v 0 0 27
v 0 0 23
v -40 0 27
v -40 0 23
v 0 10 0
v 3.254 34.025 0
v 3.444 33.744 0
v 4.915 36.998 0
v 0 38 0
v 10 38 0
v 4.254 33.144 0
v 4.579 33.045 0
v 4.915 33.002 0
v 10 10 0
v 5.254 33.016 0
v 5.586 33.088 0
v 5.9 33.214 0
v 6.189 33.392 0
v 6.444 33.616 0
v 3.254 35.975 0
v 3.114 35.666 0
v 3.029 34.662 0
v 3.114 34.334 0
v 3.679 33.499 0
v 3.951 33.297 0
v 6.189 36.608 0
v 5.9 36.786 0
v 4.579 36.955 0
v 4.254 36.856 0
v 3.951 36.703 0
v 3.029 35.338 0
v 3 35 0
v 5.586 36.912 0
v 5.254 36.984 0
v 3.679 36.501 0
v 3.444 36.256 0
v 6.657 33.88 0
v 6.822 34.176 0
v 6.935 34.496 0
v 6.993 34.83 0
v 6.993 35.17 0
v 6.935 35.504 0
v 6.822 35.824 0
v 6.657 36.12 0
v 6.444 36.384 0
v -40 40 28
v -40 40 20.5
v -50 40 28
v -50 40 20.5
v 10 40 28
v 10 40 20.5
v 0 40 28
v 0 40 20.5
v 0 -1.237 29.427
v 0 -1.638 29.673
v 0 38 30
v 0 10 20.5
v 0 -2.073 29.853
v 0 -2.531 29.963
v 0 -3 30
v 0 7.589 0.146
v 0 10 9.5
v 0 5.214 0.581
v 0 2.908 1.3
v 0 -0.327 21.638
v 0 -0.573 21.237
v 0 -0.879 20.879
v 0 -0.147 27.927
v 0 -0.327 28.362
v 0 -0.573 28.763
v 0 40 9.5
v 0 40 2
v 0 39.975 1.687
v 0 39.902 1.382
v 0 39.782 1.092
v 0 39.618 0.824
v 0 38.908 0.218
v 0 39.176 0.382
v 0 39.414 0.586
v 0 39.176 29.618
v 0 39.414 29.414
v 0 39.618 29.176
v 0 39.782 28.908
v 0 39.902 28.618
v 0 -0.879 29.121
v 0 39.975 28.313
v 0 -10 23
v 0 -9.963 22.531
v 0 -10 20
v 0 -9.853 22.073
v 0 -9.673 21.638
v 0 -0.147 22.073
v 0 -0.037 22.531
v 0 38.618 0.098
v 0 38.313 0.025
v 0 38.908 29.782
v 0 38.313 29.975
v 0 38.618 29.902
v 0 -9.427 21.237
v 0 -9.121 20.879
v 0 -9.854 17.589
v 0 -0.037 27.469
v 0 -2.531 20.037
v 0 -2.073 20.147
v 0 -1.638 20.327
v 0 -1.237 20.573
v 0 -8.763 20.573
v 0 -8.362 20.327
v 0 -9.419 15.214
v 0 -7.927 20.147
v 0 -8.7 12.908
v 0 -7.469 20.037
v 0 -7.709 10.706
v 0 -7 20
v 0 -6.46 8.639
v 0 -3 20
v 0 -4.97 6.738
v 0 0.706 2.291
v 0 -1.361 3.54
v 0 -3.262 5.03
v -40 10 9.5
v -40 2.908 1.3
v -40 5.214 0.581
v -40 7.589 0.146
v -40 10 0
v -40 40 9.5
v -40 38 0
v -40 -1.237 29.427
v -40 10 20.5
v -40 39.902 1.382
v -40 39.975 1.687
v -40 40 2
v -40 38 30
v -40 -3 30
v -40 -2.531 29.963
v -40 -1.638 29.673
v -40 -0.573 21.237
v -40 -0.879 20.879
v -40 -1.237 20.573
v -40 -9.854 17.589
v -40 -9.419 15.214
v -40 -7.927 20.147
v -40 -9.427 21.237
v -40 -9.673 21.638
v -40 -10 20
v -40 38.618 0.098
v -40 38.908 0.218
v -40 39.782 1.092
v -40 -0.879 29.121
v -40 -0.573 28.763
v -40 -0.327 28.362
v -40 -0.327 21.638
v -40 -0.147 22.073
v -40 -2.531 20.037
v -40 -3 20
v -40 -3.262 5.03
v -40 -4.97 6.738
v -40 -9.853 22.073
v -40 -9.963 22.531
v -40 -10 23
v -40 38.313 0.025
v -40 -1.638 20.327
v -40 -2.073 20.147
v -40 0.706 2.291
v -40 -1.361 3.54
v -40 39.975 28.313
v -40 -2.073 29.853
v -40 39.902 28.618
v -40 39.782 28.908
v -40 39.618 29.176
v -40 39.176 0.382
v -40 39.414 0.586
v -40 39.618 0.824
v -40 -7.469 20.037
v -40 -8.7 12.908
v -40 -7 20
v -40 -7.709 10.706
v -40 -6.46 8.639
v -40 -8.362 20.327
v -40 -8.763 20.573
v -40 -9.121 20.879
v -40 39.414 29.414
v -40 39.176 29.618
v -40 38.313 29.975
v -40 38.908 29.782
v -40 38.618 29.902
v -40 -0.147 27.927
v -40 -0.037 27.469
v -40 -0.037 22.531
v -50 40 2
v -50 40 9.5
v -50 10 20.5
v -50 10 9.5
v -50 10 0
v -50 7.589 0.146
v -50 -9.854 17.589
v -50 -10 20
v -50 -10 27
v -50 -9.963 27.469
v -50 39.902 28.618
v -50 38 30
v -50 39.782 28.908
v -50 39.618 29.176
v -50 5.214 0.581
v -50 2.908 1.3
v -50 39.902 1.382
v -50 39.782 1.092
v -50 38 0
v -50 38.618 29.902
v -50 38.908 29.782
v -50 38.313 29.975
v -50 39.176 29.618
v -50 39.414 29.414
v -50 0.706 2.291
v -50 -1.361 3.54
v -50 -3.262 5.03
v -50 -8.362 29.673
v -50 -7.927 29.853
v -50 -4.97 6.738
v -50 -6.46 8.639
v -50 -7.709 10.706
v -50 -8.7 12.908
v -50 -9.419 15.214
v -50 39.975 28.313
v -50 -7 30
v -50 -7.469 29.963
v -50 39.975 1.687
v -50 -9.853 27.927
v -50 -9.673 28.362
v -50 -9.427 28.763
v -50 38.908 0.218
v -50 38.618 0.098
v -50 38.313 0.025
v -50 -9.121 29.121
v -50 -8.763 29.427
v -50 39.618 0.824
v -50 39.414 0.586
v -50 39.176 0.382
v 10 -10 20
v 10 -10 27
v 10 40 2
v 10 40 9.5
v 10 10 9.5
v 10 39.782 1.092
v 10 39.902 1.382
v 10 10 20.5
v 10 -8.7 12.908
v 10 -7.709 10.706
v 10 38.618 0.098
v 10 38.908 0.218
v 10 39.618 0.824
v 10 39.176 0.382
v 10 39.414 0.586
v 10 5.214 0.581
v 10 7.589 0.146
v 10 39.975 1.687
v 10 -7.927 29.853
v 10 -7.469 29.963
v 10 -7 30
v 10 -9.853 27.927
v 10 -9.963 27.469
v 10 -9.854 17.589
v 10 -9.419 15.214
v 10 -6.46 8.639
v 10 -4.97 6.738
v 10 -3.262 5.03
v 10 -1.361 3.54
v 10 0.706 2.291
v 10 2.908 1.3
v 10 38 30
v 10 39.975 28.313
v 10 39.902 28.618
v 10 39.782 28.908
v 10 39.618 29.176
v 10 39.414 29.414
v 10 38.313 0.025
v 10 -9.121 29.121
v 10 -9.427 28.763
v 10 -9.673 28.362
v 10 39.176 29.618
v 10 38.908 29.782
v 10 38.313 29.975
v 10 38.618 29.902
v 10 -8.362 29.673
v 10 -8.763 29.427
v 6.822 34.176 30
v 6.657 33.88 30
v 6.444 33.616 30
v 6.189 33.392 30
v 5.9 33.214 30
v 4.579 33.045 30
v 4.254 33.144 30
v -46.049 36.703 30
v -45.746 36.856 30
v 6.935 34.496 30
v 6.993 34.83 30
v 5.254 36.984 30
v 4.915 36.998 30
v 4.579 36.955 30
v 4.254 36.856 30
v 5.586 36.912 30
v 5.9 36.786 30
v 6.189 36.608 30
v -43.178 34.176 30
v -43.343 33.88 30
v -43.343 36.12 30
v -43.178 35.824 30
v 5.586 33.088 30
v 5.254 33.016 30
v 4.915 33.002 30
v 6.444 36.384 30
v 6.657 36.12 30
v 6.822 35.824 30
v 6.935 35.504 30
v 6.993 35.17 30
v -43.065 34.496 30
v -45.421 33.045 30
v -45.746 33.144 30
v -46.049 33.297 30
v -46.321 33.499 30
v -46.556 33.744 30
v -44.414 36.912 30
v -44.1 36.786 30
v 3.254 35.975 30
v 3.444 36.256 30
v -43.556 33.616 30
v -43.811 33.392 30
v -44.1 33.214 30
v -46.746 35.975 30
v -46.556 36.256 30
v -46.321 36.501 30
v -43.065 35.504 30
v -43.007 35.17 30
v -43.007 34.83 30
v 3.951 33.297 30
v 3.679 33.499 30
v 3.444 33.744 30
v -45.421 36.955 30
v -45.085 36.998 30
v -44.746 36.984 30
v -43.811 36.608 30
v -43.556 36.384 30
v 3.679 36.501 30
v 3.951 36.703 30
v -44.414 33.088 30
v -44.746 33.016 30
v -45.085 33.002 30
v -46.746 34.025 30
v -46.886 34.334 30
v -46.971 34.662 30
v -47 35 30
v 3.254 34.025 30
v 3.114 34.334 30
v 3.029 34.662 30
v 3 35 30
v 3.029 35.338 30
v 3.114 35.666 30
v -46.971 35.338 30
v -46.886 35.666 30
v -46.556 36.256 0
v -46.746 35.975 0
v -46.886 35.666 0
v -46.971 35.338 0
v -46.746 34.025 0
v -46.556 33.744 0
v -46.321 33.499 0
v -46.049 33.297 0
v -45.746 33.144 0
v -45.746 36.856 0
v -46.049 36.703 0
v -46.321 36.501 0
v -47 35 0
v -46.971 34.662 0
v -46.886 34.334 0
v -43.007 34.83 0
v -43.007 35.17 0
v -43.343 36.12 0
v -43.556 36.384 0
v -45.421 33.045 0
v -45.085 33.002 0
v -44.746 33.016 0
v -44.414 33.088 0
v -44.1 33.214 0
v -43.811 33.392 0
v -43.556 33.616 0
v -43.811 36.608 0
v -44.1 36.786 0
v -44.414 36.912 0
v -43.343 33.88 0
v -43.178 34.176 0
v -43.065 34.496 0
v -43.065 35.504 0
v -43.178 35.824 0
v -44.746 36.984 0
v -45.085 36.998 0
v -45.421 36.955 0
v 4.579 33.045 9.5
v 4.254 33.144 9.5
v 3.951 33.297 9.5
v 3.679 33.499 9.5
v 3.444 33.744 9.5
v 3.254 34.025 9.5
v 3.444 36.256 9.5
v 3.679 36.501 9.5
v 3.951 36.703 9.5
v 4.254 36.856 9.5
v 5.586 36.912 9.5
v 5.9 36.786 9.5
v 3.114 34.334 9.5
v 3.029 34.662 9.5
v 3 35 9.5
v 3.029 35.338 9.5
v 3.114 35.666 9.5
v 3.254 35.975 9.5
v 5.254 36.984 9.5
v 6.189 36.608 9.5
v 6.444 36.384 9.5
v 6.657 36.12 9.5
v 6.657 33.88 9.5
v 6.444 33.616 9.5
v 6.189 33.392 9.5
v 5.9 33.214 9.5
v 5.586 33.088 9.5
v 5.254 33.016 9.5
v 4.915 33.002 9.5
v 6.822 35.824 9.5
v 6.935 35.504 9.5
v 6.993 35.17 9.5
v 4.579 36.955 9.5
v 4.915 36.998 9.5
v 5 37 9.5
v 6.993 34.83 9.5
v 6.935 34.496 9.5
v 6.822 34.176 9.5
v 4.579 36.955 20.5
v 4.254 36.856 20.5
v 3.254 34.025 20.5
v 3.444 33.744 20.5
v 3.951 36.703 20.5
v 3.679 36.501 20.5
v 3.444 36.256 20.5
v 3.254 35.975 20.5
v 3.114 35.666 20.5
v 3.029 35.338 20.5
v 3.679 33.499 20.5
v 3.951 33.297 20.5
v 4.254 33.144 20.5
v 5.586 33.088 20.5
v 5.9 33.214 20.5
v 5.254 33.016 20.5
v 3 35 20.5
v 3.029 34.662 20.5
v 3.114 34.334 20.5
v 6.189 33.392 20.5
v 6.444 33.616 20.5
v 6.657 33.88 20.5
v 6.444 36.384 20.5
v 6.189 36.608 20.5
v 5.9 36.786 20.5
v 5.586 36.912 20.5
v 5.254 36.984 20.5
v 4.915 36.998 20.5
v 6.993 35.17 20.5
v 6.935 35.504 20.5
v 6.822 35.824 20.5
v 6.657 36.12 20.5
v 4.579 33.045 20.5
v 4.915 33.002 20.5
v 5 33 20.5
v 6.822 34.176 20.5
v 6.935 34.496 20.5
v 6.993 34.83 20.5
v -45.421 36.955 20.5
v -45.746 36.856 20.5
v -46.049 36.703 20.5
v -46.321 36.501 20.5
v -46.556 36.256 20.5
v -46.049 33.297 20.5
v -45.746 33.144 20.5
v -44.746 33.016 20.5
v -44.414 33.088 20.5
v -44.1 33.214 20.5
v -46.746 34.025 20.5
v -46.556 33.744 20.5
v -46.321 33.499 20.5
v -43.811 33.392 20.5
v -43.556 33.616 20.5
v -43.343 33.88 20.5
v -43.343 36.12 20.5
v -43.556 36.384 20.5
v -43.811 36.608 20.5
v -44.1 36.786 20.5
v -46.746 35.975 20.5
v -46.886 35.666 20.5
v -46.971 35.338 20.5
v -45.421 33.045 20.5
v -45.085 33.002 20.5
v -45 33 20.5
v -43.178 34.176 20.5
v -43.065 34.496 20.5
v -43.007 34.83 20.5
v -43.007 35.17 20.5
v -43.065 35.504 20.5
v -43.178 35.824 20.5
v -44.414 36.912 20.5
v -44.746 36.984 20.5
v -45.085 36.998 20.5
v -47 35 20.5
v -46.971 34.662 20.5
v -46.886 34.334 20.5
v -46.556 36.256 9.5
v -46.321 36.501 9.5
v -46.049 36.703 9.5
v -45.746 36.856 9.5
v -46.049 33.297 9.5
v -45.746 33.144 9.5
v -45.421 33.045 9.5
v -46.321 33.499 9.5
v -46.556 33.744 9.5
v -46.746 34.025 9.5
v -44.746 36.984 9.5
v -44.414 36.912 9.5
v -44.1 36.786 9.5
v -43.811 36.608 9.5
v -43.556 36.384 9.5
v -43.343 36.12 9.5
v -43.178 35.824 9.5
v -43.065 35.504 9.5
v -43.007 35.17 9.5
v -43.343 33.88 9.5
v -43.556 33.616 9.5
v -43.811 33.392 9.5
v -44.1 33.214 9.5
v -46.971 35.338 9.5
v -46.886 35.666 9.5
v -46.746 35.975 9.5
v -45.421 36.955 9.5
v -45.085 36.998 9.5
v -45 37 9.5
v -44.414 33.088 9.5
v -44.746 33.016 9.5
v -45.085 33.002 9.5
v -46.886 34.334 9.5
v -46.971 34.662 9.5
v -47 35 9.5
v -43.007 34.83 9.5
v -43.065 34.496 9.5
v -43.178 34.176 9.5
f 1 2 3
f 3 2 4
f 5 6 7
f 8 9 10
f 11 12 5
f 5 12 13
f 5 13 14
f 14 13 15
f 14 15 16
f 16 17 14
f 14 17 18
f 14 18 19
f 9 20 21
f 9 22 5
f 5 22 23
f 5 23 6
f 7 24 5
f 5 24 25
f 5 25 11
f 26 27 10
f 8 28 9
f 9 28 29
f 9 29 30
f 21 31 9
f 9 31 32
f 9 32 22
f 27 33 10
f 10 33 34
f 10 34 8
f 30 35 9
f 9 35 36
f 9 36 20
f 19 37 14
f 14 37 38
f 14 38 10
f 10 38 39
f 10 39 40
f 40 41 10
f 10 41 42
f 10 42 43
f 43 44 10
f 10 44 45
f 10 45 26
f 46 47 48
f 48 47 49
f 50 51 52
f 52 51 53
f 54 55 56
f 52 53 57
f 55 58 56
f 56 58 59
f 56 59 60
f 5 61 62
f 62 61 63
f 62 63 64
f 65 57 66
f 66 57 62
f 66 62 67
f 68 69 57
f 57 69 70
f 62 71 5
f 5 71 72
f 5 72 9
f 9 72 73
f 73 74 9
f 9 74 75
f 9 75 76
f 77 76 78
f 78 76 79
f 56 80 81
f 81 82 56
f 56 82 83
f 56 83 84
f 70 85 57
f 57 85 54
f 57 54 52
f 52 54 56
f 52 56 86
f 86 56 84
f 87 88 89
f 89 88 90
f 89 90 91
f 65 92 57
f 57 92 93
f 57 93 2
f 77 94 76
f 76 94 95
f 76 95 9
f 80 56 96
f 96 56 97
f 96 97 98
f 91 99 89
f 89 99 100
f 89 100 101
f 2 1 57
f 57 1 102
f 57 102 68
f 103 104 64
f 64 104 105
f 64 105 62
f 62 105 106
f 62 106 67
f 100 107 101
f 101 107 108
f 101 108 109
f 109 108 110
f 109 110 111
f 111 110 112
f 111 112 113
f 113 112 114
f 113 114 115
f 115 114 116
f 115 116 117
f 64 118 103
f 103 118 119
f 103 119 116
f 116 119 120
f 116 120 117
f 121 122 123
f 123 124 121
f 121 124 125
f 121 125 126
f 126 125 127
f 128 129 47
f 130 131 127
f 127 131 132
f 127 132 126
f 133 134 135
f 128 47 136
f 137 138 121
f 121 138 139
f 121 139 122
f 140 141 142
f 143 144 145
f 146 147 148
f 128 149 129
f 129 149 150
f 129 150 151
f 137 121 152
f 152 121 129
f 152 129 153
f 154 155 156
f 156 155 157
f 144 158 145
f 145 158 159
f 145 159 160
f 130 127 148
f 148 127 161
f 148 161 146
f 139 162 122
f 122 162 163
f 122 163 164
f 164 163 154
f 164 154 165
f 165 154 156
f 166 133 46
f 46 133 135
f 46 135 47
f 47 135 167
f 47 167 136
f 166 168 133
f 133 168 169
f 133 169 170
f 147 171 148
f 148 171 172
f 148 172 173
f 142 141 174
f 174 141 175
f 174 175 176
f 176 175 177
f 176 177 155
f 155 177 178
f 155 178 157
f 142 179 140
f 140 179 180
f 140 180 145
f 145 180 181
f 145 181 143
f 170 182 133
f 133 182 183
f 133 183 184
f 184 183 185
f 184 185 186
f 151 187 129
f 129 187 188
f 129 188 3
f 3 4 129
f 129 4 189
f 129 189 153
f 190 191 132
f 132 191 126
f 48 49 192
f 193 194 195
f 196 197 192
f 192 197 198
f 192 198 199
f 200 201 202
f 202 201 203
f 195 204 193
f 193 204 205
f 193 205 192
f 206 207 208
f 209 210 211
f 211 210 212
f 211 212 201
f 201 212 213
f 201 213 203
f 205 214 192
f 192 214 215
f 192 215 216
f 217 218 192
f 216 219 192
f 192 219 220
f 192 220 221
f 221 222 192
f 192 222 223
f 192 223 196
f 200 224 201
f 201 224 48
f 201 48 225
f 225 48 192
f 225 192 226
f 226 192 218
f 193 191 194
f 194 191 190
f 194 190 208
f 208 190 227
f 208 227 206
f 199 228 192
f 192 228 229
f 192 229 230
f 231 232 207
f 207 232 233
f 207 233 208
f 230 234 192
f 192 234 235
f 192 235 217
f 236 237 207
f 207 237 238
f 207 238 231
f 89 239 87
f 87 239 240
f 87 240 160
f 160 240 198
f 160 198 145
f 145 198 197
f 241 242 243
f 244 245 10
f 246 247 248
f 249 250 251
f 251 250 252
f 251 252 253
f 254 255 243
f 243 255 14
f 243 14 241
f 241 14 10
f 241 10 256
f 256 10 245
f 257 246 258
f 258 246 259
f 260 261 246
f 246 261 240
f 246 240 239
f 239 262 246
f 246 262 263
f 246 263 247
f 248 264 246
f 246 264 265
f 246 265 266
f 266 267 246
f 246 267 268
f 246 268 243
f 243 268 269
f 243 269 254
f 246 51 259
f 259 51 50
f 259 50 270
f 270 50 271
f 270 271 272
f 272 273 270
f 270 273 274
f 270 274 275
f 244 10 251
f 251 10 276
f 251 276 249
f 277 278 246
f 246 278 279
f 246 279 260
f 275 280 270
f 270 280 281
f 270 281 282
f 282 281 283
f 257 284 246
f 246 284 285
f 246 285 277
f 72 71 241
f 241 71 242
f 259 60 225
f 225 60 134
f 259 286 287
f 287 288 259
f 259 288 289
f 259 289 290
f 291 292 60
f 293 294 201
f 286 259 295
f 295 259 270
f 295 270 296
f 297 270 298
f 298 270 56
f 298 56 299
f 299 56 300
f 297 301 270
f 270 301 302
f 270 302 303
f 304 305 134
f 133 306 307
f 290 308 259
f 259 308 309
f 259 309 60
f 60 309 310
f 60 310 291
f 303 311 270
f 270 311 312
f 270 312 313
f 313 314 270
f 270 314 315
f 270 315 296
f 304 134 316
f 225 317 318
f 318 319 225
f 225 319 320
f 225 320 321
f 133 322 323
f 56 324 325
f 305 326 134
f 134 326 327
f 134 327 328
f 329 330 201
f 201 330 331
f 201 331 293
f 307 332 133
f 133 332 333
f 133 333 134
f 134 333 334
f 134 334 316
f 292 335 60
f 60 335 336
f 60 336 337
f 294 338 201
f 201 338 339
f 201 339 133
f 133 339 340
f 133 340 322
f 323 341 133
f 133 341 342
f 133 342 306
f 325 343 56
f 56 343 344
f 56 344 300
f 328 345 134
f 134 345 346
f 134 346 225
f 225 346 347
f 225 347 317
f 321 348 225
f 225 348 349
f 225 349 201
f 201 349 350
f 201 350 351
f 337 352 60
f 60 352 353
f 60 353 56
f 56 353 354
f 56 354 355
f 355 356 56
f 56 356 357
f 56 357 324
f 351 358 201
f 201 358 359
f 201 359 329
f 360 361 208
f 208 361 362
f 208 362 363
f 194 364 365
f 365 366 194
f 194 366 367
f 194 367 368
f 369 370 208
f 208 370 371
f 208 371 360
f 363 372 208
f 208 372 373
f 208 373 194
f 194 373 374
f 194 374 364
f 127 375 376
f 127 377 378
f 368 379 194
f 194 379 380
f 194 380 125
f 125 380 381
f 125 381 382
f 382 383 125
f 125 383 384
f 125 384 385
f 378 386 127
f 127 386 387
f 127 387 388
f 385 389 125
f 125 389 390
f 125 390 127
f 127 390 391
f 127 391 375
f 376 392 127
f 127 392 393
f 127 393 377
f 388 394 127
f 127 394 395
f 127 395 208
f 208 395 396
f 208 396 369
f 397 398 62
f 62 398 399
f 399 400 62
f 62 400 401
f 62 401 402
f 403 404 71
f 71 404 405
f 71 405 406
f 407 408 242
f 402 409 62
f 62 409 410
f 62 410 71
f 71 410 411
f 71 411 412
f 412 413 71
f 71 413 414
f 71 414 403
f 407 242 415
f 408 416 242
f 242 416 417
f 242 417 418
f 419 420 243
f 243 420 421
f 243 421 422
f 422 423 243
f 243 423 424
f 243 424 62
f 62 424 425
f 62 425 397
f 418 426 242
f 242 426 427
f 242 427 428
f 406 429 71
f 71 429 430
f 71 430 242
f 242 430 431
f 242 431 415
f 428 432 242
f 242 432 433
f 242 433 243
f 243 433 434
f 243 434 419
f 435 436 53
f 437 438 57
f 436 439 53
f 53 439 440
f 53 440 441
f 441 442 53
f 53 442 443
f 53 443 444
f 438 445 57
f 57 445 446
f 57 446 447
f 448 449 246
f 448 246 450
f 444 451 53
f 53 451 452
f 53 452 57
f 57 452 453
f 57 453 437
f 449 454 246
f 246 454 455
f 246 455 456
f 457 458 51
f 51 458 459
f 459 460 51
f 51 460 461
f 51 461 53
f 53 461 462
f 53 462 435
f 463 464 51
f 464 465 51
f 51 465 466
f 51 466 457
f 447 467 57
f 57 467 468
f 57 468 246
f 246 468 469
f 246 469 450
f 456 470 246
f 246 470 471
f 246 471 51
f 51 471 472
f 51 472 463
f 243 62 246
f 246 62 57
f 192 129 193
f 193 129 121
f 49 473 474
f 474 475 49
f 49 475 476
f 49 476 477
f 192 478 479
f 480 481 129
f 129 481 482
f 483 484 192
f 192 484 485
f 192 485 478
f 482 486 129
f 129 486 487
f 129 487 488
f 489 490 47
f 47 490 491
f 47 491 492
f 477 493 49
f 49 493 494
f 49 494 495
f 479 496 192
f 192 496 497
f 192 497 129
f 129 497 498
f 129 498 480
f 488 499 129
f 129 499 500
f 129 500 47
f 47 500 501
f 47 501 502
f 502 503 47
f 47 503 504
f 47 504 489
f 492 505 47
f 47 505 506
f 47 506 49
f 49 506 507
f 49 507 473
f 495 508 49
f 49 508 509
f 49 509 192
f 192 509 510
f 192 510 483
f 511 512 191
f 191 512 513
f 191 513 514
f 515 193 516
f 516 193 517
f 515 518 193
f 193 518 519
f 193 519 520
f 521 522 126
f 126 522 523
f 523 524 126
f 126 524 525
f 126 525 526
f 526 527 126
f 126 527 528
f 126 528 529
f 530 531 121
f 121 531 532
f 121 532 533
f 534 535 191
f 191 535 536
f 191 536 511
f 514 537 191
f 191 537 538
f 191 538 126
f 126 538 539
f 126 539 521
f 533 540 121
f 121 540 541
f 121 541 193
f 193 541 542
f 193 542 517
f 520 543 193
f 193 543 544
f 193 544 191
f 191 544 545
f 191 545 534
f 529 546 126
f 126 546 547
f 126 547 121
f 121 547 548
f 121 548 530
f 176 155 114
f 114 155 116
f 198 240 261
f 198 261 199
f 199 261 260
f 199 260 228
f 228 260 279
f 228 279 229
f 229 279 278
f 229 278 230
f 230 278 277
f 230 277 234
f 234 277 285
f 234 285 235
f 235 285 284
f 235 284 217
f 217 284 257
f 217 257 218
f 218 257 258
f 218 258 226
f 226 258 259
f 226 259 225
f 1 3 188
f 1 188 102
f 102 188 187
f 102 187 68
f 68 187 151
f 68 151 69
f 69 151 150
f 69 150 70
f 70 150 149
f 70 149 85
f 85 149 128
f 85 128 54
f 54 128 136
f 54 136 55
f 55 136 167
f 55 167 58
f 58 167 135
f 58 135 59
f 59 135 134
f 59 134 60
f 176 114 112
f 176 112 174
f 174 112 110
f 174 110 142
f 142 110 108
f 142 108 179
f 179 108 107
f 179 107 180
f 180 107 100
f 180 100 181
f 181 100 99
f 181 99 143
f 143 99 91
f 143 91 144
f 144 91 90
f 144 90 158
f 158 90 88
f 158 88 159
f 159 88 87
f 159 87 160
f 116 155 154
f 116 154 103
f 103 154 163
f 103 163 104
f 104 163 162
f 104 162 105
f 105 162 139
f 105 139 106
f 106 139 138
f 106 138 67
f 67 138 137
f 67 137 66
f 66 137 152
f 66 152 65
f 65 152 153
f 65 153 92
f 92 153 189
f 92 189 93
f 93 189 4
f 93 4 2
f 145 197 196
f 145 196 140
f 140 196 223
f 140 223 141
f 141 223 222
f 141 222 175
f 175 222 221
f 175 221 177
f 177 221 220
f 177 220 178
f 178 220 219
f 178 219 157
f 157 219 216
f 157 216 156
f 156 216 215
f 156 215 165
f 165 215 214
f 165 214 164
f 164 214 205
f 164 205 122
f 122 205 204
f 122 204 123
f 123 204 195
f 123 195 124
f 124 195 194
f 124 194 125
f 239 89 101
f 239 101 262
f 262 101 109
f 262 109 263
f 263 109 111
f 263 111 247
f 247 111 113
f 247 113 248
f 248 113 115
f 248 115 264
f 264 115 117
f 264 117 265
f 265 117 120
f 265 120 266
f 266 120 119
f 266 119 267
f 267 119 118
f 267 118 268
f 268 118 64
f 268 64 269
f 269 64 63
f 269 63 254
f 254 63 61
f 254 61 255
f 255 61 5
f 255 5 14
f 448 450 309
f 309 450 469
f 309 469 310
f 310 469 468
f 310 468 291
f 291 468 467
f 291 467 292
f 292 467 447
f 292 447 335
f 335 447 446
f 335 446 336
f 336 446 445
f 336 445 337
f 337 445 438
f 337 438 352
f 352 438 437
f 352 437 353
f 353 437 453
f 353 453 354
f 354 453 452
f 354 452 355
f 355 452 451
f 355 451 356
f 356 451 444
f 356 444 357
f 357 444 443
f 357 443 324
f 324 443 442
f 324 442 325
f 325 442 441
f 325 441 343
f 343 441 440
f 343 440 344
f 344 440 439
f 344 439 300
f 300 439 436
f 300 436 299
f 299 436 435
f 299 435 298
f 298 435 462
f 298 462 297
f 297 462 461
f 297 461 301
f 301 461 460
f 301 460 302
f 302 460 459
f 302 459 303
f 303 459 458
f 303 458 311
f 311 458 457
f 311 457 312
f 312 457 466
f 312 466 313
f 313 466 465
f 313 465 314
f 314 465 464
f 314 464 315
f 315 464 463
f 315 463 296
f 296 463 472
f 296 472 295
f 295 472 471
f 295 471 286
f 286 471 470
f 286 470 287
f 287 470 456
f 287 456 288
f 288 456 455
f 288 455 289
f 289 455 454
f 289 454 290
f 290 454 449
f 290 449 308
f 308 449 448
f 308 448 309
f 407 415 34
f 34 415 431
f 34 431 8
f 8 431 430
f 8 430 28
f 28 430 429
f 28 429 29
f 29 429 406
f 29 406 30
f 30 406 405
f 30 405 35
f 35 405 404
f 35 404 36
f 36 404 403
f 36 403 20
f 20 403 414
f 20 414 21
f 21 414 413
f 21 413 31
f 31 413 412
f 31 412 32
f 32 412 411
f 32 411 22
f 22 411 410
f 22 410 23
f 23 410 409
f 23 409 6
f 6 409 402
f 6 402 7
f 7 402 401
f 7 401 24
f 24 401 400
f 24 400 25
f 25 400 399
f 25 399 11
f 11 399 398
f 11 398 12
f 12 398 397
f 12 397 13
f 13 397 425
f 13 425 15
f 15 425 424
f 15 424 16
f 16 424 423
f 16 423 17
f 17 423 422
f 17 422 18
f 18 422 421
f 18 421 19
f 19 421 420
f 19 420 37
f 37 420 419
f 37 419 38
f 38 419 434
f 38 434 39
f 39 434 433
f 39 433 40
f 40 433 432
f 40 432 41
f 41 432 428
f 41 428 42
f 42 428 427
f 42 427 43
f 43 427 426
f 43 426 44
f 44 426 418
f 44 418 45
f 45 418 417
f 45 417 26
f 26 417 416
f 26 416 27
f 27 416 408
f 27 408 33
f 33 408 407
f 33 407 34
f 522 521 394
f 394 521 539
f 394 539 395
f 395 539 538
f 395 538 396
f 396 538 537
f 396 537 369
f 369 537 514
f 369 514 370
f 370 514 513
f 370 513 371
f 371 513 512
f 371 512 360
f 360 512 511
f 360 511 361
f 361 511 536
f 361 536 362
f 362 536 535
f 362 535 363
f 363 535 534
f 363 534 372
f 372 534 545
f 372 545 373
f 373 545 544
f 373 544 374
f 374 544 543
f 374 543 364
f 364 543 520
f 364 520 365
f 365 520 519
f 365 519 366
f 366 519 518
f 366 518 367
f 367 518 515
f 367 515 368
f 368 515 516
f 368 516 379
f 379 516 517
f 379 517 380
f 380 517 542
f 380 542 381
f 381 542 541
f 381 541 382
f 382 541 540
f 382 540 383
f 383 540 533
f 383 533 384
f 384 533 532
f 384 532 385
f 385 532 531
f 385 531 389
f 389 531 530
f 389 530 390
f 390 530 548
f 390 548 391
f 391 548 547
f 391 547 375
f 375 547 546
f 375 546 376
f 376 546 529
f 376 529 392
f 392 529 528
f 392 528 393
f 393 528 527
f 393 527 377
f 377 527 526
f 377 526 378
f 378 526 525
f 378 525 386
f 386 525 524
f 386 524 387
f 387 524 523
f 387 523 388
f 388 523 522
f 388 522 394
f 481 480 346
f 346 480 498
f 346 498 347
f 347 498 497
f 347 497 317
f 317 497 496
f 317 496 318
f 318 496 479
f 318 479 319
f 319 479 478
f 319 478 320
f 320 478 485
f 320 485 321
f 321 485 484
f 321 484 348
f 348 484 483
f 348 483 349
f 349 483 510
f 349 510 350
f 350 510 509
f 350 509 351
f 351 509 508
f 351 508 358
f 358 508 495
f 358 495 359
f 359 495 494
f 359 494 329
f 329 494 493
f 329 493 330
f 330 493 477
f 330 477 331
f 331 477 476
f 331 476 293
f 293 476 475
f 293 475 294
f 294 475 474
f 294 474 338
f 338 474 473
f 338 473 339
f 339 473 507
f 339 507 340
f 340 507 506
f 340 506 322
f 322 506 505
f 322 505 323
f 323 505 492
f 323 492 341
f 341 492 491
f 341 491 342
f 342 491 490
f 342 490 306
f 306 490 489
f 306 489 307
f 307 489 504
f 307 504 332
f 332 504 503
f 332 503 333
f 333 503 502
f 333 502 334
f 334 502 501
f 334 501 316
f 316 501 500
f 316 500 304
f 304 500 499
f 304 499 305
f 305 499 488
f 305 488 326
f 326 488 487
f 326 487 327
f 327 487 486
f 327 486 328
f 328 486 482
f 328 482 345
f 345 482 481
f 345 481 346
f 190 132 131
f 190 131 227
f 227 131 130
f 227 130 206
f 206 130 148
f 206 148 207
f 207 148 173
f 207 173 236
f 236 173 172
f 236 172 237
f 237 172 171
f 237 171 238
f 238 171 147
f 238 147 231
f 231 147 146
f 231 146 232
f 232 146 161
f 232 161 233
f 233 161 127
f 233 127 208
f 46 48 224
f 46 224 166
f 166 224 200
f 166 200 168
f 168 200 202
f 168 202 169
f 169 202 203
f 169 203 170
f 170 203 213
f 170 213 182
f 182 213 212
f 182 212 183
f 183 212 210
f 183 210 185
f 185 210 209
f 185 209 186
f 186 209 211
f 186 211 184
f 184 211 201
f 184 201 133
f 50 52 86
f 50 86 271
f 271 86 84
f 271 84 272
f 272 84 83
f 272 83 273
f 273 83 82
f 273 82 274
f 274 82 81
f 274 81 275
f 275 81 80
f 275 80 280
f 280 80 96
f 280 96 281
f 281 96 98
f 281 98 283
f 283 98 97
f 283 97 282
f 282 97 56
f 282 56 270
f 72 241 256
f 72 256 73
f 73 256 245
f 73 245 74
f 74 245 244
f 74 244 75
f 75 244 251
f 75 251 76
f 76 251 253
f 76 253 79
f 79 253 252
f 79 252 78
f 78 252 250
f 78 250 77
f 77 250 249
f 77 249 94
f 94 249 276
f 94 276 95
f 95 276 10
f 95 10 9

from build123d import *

# Parameters (mm, degrees)
BOSS_EXTRUDE1_DEPTH     = 30
CUT_EXTRUDE1_DEPTH      = 79.102496759
CUT_EXTRUDE1_DEPTH_BACK = 79.102496759
SKETCH2_W               = 11
SKETCH2_H               = 60
SKETCH3_W               = 40
SKETCH3_H               = 10
CUT_EXTRUDE2_DEPTH      = 20
FILLET2_R               = 3
FILLET3_R               = 20
CUT_EXTRUDE3_DEPTH      = 71.710678119
CUT_EXTRUDE3_DEPTH_BACK = 71.710678119
SKETCH4_R               = 2
CUT_EXTRUDE4_DEPTH      = 71.710678119
CUT_EXTRUDE4_DEPTH_BACK = 71.710678119
SKETCH5_R               = 2
FILLET4_R               = 2


with BuildPart() as part:
    # Sketch1 → Boss-Extrude1 (new body)
    with BuildSketch(Plane.XY):
        Polygon((0, 0), (-40, 0), (-40, 40), (-50, 40), (-50, -10), (10, -10), (10, 40), (0, 40), align=None)
    extrude(amount=BOSS_EXTRUDE1_DEPTH)

    # Sketch2 → Cut-Extrude1 (cut, two sides: drawn at the far end of the back side and taken through both)
    with BuildSketch(Plane(origin=(10, 0, 0), x_dir=(0, 0, -1), z_dir=(1, 0, 0)).offset(-CUT_EXTRUDE1_DEPTH_BACK)):
        with Locations((-15, 40)):
            Rectangle(SKETCH2_W, SKETCH2_H)
    extrude(amount=CUT_EXTRUDE1_DEPTH + CUT_EXTRUDE1_DEPTH_BACK, mode=Mode.SUBTRACT)

    # Sketch3 → Cut-Extrude2 (cut)
    with BuildSketch(Plane(origin=(0, 0, 0), x_dir=(-1, 0, 0), z_dir=(0, 0, -1))):
        with Locations((20, -5)):
            Rectangle(SKETCH3_W, SKETCH3_H)
    extrude(amount=-CUT_EXTRUDE2_DEPTH, mode=Mode.SUBTRACT)

    # Fillet2
    fillet2_edges = [part.edges().sort_by_distance(p)[0] for p in [
        (-20, -10, 30),
        (-20, 0, 20),
        (-20, -10, 20),
        (-20, 0, 30),
    ]]
    fillet(fillet2_edges, radius=FILLET2_R)

    # Fillet3
    fillet3_edges = [part.edges().sort_by_distance(p)[0] for p in [
        (5, -10, 0),
        (-45, -10, 0),
    ]]
    fillet(fillet3_edges, radius=FILLET3_R)

    # Sketch4 → Cut-Extrude3 (cut, two sides: drawn at the far end of the back side and taken through both)
    with BuildSketch(Plane(origin=(0, 0, 0), x_dir=(-1, 0, 0), z_dir=(0, 0, -1)).offset(-CUT_EXTRUDE3_DEPTH_BACK)):
        with Locations((-5, 35)):
            Circle(SKETCH4_R)
    extrude(amount=CUT_EXTRUDE3_DEPTH + CUT_EXTRUDE3_DEPTH_BACK, mode=Mode.SUBTRACT)

    # Sketch5 → Cut-Extrude4 (cut, two sides: drawn at the far end of the back side and taken through both)
    with BuildSketch(Plane(origin=(0, 0, 0), x_dir=(-1, 0, 0), z_dir=(0, 0, -1)).offset(-CUT_EXTRUDE4_DEPTH_BACK)):
        with Locations((45, 35)):
            Circle(SKETCH5_R)
    extrude(amount=CUT_EXTRUDE4_DEPTH + CUT_EXTRUDE4_DEPTH_BACK, mode=Mode.SUBTRACT)

    # Fillet4
    fillet4_edges = [part.edges().sort_by_distance(p)[0] for p in [
        (-45, 40, 30),
        (5, 40, 30),
        (5, 40, 0),
        (-45, 40, 0),
    ]]
    fillet(fillet4_edges, radius=FILLET4_R)


solid = part.part
